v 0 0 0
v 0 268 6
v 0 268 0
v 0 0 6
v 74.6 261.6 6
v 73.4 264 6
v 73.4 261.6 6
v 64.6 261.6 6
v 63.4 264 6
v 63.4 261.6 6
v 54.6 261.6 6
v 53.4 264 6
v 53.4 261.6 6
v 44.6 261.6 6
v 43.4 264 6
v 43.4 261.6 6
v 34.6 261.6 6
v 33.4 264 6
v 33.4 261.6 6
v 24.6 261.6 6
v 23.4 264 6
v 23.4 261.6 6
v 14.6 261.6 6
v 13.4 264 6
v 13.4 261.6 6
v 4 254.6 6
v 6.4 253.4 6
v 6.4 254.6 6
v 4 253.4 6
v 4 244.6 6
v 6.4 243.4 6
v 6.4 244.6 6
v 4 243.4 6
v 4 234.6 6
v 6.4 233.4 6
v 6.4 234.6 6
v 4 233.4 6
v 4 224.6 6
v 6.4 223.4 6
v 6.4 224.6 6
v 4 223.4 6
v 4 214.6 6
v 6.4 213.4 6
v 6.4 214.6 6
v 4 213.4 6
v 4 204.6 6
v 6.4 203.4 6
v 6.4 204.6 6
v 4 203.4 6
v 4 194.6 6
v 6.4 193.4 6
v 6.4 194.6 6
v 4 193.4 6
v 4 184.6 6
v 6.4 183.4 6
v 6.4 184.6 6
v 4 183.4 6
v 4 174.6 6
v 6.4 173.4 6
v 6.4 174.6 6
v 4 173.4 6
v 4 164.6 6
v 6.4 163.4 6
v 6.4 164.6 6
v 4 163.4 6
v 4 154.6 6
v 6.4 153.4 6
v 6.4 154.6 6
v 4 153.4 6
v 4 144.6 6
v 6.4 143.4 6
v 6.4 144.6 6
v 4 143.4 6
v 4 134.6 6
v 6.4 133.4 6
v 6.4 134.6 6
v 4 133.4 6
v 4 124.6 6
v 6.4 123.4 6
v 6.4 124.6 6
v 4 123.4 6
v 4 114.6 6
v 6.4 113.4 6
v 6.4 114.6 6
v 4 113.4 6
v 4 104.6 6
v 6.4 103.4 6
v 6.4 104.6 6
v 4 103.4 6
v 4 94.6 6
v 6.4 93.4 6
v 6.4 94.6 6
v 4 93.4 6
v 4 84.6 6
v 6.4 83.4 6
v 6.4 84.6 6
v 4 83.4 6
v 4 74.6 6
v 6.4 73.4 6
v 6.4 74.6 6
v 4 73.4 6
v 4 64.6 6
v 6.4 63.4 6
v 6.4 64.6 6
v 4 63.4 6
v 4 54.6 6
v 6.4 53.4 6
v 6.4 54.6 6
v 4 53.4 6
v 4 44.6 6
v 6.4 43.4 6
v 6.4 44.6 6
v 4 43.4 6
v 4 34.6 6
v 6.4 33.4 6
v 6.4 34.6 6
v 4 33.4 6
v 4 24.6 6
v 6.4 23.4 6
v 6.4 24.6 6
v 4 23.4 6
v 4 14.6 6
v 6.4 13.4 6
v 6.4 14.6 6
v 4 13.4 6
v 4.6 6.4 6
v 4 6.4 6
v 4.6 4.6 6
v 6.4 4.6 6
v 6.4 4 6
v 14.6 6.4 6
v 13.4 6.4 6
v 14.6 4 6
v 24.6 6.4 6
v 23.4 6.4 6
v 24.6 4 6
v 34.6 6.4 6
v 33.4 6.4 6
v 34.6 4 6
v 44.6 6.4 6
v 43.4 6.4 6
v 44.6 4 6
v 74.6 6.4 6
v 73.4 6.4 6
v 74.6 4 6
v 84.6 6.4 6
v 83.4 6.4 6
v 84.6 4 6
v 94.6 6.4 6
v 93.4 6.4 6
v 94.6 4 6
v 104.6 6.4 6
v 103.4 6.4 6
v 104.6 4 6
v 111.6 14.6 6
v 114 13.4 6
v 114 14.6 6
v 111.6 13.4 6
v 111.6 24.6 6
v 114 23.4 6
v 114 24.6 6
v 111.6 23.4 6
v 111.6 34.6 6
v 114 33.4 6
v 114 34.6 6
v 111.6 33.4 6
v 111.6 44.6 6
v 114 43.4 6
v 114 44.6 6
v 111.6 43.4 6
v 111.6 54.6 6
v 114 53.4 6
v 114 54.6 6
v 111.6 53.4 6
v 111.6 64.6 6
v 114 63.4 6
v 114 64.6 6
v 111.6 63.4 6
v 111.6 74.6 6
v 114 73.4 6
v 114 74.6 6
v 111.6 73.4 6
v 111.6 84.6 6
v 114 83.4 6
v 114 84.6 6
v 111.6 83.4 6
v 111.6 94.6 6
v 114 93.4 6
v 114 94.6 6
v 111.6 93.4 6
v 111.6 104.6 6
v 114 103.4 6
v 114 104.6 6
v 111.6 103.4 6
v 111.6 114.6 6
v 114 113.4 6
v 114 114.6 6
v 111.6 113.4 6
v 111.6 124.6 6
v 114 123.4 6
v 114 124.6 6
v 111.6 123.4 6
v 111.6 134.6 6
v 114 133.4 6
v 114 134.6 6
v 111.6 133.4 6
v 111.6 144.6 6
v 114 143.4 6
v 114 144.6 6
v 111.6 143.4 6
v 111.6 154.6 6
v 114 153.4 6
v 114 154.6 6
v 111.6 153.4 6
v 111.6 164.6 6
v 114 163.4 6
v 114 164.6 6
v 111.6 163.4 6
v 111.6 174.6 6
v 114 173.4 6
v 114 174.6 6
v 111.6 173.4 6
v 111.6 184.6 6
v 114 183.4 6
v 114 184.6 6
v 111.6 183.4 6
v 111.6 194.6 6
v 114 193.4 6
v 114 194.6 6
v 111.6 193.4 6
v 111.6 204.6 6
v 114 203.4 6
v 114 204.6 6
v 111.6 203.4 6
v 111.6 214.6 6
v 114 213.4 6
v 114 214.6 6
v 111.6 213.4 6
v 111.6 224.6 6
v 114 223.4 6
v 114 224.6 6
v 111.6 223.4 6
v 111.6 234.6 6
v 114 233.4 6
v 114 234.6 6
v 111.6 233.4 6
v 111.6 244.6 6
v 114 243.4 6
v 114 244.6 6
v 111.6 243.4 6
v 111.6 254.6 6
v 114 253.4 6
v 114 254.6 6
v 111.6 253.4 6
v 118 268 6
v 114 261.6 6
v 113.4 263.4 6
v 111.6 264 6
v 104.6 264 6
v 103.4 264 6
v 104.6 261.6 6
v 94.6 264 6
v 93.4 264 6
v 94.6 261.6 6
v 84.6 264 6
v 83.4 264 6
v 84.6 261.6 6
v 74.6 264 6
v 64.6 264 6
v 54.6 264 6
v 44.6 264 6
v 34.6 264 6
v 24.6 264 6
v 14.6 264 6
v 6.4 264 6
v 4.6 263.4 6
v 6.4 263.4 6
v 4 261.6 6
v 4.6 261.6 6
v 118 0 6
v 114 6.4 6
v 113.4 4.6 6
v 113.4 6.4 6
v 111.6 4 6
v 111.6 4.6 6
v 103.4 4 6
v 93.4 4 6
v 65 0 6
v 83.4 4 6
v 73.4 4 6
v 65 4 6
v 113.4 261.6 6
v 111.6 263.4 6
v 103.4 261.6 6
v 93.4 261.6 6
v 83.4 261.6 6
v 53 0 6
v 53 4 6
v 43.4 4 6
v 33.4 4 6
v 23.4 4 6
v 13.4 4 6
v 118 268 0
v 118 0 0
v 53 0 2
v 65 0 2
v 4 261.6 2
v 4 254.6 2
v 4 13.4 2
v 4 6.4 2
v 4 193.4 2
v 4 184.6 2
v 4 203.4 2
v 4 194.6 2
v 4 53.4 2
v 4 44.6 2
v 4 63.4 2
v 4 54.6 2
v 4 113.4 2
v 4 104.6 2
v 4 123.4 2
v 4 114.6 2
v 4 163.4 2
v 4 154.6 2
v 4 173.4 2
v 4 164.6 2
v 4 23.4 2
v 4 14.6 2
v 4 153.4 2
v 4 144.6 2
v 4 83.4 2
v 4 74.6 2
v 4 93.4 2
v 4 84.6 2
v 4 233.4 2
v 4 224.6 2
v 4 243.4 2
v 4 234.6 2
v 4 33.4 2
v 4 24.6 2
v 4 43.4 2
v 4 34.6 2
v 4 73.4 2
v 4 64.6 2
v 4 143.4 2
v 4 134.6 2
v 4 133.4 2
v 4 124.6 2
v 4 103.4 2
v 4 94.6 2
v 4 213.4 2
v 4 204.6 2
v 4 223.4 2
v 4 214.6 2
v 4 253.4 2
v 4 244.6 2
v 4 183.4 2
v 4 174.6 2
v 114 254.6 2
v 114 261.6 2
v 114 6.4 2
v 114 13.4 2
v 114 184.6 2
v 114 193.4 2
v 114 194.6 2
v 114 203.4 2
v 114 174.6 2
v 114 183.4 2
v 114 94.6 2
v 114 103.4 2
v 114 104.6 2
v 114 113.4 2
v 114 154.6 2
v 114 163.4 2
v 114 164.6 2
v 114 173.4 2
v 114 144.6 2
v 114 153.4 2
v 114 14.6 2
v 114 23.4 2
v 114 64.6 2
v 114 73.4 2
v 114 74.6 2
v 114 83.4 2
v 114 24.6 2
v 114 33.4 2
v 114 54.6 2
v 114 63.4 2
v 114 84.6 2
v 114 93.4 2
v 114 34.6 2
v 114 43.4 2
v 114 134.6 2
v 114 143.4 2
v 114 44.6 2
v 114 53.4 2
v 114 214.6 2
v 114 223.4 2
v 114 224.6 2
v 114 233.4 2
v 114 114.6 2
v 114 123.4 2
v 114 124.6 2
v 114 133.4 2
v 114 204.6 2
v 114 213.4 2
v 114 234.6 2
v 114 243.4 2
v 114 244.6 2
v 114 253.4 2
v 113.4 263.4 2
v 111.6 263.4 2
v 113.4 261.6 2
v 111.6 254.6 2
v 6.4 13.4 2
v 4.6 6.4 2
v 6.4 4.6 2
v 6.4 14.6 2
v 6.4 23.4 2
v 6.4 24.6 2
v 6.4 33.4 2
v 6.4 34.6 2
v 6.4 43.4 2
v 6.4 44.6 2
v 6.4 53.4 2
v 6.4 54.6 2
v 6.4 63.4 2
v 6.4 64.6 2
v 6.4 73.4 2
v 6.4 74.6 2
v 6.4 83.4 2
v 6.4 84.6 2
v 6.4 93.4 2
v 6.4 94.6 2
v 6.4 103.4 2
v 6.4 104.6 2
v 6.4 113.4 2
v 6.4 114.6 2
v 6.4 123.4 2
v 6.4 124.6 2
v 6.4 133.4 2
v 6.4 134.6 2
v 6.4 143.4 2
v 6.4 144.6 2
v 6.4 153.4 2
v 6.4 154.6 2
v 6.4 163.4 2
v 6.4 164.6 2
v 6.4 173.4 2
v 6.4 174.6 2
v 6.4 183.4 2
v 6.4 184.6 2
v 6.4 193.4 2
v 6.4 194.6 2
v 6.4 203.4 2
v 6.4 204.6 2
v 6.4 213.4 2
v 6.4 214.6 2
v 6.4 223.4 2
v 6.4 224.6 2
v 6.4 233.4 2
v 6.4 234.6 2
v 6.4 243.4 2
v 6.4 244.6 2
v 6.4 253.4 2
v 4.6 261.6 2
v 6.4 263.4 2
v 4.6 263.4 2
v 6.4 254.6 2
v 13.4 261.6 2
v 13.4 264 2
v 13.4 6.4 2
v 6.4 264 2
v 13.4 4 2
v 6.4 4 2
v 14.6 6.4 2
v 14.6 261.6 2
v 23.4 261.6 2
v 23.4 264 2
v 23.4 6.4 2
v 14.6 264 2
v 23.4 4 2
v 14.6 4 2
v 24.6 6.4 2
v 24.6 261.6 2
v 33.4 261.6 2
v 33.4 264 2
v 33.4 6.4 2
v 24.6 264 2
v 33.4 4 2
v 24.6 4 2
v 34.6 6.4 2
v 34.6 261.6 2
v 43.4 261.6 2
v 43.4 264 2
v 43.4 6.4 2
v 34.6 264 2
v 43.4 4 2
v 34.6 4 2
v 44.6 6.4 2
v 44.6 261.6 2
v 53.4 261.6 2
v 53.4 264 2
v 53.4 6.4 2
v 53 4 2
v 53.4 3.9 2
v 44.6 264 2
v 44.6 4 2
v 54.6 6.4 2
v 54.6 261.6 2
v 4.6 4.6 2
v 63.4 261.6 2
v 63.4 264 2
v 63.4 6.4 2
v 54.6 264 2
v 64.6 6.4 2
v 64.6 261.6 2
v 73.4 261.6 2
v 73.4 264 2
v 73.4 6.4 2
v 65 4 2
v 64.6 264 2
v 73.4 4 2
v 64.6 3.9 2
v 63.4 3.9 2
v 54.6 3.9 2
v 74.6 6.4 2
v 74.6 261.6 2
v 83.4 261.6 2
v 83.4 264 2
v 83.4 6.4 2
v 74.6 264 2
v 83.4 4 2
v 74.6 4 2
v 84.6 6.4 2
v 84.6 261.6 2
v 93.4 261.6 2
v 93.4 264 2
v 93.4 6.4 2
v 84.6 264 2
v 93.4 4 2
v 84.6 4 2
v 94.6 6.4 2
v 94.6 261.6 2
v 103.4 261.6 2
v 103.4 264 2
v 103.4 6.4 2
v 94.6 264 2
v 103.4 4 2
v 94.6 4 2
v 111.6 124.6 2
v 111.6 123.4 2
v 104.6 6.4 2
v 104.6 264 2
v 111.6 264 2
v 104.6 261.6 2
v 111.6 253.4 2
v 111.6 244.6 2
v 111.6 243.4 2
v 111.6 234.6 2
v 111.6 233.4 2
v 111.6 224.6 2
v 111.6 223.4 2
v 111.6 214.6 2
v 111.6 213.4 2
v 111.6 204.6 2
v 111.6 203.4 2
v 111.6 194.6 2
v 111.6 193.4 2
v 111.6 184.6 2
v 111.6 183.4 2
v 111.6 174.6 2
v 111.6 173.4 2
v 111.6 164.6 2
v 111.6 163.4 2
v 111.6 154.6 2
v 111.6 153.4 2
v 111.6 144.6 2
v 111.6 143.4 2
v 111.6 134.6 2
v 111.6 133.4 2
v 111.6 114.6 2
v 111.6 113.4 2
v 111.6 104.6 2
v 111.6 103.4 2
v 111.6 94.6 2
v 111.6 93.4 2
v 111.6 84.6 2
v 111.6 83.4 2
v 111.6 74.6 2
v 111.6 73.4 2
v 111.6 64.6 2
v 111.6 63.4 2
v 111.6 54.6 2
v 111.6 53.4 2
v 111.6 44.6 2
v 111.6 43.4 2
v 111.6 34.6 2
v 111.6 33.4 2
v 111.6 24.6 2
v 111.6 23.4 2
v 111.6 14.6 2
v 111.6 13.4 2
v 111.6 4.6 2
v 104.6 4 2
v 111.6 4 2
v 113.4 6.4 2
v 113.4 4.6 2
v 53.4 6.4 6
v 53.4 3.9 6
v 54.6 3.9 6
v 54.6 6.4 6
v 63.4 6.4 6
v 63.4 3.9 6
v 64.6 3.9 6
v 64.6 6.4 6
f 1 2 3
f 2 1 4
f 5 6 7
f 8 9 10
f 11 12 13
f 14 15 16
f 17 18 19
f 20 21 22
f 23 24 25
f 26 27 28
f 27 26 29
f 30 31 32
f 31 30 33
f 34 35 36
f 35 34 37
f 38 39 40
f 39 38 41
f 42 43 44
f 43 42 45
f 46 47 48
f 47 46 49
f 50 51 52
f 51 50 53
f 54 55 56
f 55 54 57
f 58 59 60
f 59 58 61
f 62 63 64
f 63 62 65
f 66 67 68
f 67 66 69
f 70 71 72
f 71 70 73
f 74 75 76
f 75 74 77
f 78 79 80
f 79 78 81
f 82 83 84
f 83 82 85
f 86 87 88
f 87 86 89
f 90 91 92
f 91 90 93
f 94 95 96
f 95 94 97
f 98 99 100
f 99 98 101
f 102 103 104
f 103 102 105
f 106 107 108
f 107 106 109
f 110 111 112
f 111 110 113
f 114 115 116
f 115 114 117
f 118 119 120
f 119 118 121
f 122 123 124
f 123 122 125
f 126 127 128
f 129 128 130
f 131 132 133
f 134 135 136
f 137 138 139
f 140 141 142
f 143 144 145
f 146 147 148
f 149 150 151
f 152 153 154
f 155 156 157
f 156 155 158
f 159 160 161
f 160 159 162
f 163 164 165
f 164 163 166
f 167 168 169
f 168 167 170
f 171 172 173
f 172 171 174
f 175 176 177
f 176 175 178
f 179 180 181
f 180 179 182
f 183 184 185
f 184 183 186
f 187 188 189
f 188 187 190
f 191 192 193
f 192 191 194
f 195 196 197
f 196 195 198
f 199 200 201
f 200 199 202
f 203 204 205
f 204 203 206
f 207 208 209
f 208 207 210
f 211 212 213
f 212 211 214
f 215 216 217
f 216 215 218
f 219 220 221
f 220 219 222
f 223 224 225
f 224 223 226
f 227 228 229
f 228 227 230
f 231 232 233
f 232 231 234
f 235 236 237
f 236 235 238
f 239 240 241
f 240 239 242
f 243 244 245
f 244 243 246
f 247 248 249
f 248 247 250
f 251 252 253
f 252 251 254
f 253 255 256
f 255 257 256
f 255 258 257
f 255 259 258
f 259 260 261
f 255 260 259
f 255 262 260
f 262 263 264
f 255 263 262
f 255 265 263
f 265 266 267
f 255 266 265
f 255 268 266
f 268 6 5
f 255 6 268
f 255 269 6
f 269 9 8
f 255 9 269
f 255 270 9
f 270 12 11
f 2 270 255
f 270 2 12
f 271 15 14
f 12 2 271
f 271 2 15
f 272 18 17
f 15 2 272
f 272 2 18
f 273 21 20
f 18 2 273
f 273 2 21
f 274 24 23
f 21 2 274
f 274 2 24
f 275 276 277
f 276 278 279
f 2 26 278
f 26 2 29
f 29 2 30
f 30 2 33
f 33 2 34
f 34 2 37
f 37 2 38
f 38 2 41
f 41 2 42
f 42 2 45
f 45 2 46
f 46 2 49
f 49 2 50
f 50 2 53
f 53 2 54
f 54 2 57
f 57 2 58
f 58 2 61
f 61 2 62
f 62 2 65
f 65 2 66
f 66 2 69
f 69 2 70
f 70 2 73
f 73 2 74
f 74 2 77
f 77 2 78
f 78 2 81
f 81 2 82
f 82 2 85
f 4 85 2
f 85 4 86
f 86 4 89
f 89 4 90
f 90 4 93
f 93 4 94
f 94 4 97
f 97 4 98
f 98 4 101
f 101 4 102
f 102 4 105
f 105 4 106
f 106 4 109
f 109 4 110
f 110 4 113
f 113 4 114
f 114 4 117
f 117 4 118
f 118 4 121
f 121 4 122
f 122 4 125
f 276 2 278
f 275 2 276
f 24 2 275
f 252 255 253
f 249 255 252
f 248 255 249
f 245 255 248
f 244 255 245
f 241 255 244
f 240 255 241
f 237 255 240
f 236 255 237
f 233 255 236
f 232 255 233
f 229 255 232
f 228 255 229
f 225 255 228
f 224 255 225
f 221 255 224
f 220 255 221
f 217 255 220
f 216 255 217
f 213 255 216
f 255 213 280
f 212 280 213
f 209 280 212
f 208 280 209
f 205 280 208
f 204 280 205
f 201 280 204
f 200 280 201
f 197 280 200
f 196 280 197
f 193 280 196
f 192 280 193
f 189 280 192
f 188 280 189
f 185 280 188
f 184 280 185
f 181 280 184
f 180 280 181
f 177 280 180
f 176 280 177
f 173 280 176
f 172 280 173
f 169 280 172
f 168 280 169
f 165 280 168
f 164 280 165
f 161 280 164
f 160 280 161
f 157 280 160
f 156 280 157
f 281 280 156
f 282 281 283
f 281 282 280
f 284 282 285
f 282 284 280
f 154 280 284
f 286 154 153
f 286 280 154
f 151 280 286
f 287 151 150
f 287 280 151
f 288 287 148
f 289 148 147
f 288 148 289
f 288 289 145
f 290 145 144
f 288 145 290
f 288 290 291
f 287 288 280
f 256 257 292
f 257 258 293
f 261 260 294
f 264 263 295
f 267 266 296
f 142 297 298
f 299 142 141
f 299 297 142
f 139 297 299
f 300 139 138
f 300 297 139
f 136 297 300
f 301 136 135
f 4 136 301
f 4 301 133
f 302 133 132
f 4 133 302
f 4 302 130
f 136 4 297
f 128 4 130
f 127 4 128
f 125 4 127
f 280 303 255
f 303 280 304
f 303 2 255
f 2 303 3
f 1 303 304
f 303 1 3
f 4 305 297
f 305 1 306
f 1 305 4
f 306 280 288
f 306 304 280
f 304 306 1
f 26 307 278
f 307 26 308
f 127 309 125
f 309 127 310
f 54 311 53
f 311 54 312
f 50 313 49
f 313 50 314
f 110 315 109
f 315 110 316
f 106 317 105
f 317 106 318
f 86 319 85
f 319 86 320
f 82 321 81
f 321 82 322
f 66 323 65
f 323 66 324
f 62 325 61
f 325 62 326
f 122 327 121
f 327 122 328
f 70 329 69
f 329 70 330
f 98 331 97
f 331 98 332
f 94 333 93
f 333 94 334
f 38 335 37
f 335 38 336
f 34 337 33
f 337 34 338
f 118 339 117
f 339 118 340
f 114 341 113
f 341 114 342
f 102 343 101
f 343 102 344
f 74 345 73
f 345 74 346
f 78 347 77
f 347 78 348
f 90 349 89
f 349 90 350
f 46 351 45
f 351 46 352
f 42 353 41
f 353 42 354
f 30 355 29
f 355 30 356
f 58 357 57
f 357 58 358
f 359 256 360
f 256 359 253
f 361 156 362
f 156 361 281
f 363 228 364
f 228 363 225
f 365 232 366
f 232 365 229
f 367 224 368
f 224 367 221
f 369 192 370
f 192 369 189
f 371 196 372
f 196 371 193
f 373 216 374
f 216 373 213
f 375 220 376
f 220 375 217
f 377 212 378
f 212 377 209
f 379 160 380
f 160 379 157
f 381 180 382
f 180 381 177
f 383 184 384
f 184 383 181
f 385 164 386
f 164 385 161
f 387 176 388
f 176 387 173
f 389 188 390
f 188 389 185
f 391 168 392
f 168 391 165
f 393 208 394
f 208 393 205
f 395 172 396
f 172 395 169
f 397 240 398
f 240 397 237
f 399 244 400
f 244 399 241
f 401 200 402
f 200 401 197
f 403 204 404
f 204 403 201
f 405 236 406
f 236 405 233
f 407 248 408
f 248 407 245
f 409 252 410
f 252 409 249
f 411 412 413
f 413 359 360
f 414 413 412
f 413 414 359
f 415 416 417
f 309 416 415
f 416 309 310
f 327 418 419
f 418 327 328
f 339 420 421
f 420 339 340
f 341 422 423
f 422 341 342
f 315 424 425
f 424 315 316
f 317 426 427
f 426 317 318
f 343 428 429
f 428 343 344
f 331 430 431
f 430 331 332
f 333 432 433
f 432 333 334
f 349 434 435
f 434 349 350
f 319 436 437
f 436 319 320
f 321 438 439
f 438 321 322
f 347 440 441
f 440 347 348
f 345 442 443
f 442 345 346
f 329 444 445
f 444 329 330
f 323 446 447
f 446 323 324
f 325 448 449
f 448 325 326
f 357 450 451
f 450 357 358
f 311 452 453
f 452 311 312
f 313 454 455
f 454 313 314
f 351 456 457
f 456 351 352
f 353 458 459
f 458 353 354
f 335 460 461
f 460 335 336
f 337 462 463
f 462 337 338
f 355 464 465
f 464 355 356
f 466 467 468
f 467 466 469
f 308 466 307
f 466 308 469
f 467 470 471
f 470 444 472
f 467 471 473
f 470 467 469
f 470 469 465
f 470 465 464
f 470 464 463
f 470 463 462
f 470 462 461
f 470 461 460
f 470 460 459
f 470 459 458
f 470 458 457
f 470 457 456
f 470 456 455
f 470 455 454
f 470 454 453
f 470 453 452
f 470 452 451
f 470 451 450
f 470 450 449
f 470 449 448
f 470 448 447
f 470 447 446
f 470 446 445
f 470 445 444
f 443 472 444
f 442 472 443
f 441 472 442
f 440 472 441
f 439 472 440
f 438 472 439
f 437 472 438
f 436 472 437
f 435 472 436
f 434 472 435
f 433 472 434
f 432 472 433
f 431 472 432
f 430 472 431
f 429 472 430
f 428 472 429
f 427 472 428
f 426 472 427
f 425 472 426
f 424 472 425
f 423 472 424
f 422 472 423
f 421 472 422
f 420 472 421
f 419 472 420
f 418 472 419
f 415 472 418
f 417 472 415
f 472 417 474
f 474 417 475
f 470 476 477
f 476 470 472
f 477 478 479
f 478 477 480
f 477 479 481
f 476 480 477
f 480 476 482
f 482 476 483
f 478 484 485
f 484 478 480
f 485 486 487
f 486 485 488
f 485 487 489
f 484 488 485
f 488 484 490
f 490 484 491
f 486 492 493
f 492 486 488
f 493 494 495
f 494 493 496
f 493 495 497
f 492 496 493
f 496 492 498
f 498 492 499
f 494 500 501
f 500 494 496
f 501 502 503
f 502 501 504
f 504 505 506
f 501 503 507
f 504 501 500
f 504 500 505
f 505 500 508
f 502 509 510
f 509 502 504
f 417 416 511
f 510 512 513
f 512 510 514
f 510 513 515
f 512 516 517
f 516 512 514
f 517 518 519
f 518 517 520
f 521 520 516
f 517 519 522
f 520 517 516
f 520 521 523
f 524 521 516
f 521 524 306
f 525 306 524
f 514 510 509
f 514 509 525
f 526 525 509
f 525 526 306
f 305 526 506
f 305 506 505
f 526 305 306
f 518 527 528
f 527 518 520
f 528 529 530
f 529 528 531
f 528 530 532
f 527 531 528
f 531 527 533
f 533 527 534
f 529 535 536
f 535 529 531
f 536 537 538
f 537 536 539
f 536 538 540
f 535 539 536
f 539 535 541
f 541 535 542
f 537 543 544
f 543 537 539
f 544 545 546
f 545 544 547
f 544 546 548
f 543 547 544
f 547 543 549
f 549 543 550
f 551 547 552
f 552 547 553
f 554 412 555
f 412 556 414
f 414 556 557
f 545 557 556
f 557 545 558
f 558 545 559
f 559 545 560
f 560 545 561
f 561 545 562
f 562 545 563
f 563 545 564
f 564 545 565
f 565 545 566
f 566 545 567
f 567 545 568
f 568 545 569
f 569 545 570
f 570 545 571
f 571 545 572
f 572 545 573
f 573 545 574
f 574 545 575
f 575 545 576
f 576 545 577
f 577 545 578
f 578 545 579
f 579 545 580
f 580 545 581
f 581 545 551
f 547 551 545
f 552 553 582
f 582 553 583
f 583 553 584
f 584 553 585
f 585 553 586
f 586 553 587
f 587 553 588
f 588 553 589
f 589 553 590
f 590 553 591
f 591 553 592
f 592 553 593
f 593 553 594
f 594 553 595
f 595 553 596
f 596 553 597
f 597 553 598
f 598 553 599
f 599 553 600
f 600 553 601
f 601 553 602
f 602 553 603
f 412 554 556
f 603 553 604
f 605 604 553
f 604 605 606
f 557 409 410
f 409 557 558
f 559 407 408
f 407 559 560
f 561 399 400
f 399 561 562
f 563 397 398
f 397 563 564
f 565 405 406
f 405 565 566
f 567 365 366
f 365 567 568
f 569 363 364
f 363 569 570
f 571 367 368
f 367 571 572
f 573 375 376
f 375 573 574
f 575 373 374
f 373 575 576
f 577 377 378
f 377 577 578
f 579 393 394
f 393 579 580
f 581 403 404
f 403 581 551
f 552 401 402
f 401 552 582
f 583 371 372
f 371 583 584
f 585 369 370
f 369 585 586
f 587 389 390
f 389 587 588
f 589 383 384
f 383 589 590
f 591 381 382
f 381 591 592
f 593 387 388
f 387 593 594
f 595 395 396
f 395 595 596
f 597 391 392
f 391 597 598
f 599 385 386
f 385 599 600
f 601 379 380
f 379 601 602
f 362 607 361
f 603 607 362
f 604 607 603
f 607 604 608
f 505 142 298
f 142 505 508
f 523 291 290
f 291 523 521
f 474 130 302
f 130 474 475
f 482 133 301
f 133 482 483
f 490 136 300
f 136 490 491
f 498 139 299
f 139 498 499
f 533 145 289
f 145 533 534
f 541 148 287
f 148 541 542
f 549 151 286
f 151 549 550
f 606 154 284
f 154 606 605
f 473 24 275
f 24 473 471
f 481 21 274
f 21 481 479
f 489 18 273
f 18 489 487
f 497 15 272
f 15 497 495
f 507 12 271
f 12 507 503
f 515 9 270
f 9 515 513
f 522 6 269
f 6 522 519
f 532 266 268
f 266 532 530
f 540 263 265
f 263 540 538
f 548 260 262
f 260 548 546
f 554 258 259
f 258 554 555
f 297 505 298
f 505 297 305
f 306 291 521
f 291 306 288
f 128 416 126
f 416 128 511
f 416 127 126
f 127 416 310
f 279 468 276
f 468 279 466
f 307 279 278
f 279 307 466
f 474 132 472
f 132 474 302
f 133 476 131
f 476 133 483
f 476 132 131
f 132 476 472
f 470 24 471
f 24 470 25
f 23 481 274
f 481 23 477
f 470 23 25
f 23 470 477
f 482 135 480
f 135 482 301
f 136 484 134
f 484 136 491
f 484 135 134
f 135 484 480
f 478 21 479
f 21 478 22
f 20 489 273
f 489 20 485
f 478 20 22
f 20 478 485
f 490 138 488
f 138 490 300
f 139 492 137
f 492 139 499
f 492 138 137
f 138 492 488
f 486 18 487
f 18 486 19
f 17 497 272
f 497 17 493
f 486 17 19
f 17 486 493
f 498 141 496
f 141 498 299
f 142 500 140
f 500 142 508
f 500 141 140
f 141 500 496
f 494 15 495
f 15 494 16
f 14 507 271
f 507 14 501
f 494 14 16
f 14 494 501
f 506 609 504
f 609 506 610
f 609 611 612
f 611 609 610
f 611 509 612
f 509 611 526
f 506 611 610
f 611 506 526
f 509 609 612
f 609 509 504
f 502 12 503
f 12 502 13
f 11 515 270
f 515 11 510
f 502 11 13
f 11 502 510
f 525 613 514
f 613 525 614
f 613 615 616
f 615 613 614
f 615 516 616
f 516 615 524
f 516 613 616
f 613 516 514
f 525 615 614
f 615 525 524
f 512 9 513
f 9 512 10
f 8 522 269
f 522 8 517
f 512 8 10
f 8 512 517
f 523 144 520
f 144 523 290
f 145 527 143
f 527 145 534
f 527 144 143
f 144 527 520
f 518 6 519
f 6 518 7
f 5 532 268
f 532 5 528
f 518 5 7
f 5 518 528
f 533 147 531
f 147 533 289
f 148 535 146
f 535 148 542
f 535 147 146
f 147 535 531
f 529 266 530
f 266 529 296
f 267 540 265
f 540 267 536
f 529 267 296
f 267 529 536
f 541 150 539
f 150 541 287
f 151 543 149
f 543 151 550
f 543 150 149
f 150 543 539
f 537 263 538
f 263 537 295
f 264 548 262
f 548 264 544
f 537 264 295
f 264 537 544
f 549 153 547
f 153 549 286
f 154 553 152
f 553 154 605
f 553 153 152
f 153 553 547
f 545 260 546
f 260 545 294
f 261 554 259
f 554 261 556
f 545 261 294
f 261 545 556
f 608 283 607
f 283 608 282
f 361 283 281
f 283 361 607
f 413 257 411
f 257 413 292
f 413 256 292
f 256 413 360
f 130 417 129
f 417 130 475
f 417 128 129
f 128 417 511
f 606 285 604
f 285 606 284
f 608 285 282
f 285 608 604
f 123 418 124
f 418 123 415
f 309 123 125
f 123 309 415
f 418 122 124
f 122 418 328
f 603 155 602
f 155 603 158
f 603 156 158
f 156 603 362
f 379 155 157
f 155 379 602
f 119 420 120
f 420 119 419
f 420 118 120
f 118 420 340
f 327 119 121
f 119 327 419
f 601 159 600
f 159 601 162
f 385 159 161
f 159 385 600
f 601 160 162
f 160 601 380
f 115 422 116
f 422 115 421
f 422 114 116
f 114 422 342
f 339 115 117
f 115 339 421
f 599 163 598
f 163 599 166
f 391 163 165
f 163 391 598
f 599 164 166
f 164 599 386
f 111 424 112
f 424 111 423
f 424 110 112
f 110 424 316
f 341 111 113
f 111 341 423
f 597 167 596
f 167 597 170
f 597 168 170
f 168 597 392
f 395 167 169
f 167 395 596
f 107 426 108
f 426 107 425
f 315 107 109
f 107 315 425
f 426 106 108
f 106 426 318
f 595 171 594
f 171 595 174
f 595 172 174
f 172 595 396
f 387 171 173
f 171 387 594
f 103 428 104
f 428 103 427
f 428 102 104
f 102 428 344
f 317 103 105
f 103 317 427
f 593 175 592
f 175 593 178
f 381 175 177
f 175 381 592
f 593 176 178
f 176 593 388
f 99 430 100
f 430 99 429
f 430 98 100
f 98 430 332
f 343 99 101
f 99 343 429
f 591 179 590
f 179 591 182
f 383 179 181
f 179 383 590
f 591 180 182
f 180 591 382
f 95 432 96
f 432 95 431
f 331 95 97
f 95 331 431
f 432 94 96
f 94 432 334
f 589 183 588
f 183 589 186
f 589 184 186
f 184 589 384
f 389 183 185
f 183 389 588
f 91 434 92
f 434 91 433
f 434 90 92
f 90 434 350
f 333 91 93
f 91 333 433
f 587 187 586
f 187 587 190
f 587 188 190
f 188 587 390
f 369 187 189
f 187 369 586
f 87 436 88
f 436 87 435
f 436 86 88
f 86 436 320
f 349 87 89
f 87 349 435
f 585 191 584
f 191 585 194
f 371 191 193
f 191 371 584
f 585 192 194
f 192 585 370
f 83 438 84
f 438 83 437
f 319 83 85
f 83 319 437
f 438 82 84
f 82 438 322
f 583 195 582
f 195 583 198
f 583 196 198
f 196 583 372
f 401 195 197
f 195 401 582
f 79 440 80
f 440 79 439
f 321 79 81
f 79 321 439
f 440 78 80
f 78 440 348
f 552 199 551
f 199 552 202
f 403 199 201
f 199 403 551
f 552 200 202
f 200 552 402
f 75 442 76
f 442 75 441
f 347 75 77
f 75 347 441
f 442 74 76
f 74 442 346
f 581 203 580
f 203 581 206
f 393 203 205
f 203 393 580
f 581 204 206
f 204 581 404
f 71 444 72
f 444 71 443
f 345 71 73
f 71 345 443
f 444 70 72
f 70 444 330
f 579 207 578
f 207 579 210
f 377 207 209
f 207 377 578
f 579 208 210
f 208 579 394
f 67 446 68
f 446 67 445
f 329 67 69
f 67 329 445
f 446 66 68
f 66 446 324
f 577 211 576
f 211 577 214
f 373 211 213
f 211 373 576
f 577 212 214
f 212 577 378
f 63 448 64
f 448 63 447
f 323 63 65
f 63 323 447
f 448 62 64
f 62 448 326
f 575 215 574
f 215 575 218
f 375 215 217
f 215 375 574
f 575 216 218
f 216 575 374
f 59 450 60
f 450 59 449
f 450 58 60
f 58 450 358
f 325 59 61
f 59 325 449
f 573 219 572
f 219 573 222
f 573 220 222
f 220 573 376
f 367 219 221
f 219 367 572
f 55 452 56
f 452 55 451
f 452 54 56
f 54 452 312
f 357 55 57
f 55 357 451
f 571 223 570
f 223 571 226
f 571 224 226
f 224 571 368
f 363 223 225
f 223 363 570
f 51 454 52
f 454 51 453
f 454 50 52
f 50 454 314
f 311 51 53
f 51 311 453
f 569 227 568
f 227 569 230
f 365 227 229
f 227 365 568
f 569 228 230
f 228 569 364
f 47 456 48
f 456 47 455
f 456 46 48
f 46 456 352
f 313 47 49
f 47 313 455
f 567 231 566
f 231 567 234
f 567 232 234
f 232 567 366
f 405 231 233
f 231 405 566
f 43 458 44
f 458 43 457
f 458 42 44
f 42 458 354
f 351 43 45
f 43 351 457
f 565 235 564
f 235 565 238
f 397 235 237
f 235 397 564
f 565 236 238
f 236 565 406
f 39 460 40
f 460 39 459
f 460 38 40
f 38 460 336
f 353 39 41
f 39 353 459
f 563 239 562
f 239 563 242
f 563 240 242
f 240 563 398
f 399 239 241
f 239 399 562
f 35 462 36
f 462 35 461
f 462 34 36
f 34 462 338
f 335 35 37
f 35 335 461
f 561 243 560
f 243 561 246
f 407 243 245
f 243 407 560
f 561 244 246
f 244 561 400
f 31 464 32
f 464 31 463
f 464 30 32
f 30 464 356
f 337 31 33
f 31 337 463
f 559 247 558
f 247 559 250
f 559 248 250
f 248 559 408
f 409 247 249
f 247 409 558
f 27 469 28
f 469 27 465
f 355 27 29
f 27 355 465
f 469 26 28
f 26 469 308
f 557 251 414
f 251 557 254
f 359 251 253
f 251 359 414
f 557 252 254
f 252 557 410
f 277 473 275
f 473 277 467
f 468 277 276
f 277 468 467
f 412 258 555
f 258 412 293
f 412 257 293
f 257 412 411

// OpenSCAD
// pressure_mat.scad — printable frame for a DIY Velostat plantar-pressure MAT.
// The sensing layer is a copper-tape ROW x COLUMN matrix sandwiching a Velostat sheet
// (each row/col overlap = one pressure cell). This printed part is the rigid FRAME +
// an alignment COMB that lays the copper strips straight at a fixed pitch, plus a cable
// exit. Read the matrix by driving rows (GPIO) and reading columns via a mux -> ADC
// (firmware/pressure_mat) -> a heel/arch/forefoot pressure map. Coarse but real.
//
// Print: PLA/PETG, low infill for the frame. The comb teeth set the electrode pitch.

$fn = 32;

INNER_W   = 110;   // sensing area width (mm) — a bit wider than a foot
INNER_L   = 260;   // length
PITCH     = 10;    // electrode strip pitch (mm) -> INNER_W/PITCH cols, INNER_L/PITCH rows
WALL      = 4;
FRAME_H   = 6;
TEETH_H   = 4;     // comb teeth height (guide the copper tape)

COLS = floor(INNER_W / PITCH);
ROWS = floor(INNER_L / PITCH);

module frame() {
    // outer border
    difference() {
        cube([INNER_W + 2*WALL, INNER_L + 2*WALL, FRAME_H]);
        translate([WALL, WALL, 2]) cube([INNER_W, INNER_L, FRAME_H]);      // recess for the sandwich
        // cable exit slot
        translate([INNER_W/2 + WALL - 6, -0.1, 2]) cube([12, WALL + 0.2, FRAME_H]);
    }
    // COLUMN comb (teeth along the two long edges -> vertical copper strips)
    for (i = [0 : COLS]) {
        translate([WALL + i*PITCH - 0.6, WALL - 0.1, 2]) cube([1.2, 2.5, TEETH_H]);
        translate([WALL + i*PITCH - 0.6, WALL + INNER_L - 2.4, 2]) cube([1.2, 2.5, TEETH_H]);
    }
    // ROW comb (teeth along the two short edges -> horizontal copper strips)
    for (j = [0 : ROWS]) {
        translate([WALL - 0.1, WALL + j*PITCH - 0.6, 2]) cube([2.5, 1.2, TEETH_H]);
        translate([WALL + INNER_W - 2.4, WALL + j*PITCH - 0.6, 2]) cube([2.5, 1.2, TEETH_H]);
    }
}

// A corner label of the grid size (printed into the frame) — informational only.
// echo(str("matrix = ", COLS, " cols x ", ROWS, " rows = ", COLS*ROWS, " cells"));

frame();
